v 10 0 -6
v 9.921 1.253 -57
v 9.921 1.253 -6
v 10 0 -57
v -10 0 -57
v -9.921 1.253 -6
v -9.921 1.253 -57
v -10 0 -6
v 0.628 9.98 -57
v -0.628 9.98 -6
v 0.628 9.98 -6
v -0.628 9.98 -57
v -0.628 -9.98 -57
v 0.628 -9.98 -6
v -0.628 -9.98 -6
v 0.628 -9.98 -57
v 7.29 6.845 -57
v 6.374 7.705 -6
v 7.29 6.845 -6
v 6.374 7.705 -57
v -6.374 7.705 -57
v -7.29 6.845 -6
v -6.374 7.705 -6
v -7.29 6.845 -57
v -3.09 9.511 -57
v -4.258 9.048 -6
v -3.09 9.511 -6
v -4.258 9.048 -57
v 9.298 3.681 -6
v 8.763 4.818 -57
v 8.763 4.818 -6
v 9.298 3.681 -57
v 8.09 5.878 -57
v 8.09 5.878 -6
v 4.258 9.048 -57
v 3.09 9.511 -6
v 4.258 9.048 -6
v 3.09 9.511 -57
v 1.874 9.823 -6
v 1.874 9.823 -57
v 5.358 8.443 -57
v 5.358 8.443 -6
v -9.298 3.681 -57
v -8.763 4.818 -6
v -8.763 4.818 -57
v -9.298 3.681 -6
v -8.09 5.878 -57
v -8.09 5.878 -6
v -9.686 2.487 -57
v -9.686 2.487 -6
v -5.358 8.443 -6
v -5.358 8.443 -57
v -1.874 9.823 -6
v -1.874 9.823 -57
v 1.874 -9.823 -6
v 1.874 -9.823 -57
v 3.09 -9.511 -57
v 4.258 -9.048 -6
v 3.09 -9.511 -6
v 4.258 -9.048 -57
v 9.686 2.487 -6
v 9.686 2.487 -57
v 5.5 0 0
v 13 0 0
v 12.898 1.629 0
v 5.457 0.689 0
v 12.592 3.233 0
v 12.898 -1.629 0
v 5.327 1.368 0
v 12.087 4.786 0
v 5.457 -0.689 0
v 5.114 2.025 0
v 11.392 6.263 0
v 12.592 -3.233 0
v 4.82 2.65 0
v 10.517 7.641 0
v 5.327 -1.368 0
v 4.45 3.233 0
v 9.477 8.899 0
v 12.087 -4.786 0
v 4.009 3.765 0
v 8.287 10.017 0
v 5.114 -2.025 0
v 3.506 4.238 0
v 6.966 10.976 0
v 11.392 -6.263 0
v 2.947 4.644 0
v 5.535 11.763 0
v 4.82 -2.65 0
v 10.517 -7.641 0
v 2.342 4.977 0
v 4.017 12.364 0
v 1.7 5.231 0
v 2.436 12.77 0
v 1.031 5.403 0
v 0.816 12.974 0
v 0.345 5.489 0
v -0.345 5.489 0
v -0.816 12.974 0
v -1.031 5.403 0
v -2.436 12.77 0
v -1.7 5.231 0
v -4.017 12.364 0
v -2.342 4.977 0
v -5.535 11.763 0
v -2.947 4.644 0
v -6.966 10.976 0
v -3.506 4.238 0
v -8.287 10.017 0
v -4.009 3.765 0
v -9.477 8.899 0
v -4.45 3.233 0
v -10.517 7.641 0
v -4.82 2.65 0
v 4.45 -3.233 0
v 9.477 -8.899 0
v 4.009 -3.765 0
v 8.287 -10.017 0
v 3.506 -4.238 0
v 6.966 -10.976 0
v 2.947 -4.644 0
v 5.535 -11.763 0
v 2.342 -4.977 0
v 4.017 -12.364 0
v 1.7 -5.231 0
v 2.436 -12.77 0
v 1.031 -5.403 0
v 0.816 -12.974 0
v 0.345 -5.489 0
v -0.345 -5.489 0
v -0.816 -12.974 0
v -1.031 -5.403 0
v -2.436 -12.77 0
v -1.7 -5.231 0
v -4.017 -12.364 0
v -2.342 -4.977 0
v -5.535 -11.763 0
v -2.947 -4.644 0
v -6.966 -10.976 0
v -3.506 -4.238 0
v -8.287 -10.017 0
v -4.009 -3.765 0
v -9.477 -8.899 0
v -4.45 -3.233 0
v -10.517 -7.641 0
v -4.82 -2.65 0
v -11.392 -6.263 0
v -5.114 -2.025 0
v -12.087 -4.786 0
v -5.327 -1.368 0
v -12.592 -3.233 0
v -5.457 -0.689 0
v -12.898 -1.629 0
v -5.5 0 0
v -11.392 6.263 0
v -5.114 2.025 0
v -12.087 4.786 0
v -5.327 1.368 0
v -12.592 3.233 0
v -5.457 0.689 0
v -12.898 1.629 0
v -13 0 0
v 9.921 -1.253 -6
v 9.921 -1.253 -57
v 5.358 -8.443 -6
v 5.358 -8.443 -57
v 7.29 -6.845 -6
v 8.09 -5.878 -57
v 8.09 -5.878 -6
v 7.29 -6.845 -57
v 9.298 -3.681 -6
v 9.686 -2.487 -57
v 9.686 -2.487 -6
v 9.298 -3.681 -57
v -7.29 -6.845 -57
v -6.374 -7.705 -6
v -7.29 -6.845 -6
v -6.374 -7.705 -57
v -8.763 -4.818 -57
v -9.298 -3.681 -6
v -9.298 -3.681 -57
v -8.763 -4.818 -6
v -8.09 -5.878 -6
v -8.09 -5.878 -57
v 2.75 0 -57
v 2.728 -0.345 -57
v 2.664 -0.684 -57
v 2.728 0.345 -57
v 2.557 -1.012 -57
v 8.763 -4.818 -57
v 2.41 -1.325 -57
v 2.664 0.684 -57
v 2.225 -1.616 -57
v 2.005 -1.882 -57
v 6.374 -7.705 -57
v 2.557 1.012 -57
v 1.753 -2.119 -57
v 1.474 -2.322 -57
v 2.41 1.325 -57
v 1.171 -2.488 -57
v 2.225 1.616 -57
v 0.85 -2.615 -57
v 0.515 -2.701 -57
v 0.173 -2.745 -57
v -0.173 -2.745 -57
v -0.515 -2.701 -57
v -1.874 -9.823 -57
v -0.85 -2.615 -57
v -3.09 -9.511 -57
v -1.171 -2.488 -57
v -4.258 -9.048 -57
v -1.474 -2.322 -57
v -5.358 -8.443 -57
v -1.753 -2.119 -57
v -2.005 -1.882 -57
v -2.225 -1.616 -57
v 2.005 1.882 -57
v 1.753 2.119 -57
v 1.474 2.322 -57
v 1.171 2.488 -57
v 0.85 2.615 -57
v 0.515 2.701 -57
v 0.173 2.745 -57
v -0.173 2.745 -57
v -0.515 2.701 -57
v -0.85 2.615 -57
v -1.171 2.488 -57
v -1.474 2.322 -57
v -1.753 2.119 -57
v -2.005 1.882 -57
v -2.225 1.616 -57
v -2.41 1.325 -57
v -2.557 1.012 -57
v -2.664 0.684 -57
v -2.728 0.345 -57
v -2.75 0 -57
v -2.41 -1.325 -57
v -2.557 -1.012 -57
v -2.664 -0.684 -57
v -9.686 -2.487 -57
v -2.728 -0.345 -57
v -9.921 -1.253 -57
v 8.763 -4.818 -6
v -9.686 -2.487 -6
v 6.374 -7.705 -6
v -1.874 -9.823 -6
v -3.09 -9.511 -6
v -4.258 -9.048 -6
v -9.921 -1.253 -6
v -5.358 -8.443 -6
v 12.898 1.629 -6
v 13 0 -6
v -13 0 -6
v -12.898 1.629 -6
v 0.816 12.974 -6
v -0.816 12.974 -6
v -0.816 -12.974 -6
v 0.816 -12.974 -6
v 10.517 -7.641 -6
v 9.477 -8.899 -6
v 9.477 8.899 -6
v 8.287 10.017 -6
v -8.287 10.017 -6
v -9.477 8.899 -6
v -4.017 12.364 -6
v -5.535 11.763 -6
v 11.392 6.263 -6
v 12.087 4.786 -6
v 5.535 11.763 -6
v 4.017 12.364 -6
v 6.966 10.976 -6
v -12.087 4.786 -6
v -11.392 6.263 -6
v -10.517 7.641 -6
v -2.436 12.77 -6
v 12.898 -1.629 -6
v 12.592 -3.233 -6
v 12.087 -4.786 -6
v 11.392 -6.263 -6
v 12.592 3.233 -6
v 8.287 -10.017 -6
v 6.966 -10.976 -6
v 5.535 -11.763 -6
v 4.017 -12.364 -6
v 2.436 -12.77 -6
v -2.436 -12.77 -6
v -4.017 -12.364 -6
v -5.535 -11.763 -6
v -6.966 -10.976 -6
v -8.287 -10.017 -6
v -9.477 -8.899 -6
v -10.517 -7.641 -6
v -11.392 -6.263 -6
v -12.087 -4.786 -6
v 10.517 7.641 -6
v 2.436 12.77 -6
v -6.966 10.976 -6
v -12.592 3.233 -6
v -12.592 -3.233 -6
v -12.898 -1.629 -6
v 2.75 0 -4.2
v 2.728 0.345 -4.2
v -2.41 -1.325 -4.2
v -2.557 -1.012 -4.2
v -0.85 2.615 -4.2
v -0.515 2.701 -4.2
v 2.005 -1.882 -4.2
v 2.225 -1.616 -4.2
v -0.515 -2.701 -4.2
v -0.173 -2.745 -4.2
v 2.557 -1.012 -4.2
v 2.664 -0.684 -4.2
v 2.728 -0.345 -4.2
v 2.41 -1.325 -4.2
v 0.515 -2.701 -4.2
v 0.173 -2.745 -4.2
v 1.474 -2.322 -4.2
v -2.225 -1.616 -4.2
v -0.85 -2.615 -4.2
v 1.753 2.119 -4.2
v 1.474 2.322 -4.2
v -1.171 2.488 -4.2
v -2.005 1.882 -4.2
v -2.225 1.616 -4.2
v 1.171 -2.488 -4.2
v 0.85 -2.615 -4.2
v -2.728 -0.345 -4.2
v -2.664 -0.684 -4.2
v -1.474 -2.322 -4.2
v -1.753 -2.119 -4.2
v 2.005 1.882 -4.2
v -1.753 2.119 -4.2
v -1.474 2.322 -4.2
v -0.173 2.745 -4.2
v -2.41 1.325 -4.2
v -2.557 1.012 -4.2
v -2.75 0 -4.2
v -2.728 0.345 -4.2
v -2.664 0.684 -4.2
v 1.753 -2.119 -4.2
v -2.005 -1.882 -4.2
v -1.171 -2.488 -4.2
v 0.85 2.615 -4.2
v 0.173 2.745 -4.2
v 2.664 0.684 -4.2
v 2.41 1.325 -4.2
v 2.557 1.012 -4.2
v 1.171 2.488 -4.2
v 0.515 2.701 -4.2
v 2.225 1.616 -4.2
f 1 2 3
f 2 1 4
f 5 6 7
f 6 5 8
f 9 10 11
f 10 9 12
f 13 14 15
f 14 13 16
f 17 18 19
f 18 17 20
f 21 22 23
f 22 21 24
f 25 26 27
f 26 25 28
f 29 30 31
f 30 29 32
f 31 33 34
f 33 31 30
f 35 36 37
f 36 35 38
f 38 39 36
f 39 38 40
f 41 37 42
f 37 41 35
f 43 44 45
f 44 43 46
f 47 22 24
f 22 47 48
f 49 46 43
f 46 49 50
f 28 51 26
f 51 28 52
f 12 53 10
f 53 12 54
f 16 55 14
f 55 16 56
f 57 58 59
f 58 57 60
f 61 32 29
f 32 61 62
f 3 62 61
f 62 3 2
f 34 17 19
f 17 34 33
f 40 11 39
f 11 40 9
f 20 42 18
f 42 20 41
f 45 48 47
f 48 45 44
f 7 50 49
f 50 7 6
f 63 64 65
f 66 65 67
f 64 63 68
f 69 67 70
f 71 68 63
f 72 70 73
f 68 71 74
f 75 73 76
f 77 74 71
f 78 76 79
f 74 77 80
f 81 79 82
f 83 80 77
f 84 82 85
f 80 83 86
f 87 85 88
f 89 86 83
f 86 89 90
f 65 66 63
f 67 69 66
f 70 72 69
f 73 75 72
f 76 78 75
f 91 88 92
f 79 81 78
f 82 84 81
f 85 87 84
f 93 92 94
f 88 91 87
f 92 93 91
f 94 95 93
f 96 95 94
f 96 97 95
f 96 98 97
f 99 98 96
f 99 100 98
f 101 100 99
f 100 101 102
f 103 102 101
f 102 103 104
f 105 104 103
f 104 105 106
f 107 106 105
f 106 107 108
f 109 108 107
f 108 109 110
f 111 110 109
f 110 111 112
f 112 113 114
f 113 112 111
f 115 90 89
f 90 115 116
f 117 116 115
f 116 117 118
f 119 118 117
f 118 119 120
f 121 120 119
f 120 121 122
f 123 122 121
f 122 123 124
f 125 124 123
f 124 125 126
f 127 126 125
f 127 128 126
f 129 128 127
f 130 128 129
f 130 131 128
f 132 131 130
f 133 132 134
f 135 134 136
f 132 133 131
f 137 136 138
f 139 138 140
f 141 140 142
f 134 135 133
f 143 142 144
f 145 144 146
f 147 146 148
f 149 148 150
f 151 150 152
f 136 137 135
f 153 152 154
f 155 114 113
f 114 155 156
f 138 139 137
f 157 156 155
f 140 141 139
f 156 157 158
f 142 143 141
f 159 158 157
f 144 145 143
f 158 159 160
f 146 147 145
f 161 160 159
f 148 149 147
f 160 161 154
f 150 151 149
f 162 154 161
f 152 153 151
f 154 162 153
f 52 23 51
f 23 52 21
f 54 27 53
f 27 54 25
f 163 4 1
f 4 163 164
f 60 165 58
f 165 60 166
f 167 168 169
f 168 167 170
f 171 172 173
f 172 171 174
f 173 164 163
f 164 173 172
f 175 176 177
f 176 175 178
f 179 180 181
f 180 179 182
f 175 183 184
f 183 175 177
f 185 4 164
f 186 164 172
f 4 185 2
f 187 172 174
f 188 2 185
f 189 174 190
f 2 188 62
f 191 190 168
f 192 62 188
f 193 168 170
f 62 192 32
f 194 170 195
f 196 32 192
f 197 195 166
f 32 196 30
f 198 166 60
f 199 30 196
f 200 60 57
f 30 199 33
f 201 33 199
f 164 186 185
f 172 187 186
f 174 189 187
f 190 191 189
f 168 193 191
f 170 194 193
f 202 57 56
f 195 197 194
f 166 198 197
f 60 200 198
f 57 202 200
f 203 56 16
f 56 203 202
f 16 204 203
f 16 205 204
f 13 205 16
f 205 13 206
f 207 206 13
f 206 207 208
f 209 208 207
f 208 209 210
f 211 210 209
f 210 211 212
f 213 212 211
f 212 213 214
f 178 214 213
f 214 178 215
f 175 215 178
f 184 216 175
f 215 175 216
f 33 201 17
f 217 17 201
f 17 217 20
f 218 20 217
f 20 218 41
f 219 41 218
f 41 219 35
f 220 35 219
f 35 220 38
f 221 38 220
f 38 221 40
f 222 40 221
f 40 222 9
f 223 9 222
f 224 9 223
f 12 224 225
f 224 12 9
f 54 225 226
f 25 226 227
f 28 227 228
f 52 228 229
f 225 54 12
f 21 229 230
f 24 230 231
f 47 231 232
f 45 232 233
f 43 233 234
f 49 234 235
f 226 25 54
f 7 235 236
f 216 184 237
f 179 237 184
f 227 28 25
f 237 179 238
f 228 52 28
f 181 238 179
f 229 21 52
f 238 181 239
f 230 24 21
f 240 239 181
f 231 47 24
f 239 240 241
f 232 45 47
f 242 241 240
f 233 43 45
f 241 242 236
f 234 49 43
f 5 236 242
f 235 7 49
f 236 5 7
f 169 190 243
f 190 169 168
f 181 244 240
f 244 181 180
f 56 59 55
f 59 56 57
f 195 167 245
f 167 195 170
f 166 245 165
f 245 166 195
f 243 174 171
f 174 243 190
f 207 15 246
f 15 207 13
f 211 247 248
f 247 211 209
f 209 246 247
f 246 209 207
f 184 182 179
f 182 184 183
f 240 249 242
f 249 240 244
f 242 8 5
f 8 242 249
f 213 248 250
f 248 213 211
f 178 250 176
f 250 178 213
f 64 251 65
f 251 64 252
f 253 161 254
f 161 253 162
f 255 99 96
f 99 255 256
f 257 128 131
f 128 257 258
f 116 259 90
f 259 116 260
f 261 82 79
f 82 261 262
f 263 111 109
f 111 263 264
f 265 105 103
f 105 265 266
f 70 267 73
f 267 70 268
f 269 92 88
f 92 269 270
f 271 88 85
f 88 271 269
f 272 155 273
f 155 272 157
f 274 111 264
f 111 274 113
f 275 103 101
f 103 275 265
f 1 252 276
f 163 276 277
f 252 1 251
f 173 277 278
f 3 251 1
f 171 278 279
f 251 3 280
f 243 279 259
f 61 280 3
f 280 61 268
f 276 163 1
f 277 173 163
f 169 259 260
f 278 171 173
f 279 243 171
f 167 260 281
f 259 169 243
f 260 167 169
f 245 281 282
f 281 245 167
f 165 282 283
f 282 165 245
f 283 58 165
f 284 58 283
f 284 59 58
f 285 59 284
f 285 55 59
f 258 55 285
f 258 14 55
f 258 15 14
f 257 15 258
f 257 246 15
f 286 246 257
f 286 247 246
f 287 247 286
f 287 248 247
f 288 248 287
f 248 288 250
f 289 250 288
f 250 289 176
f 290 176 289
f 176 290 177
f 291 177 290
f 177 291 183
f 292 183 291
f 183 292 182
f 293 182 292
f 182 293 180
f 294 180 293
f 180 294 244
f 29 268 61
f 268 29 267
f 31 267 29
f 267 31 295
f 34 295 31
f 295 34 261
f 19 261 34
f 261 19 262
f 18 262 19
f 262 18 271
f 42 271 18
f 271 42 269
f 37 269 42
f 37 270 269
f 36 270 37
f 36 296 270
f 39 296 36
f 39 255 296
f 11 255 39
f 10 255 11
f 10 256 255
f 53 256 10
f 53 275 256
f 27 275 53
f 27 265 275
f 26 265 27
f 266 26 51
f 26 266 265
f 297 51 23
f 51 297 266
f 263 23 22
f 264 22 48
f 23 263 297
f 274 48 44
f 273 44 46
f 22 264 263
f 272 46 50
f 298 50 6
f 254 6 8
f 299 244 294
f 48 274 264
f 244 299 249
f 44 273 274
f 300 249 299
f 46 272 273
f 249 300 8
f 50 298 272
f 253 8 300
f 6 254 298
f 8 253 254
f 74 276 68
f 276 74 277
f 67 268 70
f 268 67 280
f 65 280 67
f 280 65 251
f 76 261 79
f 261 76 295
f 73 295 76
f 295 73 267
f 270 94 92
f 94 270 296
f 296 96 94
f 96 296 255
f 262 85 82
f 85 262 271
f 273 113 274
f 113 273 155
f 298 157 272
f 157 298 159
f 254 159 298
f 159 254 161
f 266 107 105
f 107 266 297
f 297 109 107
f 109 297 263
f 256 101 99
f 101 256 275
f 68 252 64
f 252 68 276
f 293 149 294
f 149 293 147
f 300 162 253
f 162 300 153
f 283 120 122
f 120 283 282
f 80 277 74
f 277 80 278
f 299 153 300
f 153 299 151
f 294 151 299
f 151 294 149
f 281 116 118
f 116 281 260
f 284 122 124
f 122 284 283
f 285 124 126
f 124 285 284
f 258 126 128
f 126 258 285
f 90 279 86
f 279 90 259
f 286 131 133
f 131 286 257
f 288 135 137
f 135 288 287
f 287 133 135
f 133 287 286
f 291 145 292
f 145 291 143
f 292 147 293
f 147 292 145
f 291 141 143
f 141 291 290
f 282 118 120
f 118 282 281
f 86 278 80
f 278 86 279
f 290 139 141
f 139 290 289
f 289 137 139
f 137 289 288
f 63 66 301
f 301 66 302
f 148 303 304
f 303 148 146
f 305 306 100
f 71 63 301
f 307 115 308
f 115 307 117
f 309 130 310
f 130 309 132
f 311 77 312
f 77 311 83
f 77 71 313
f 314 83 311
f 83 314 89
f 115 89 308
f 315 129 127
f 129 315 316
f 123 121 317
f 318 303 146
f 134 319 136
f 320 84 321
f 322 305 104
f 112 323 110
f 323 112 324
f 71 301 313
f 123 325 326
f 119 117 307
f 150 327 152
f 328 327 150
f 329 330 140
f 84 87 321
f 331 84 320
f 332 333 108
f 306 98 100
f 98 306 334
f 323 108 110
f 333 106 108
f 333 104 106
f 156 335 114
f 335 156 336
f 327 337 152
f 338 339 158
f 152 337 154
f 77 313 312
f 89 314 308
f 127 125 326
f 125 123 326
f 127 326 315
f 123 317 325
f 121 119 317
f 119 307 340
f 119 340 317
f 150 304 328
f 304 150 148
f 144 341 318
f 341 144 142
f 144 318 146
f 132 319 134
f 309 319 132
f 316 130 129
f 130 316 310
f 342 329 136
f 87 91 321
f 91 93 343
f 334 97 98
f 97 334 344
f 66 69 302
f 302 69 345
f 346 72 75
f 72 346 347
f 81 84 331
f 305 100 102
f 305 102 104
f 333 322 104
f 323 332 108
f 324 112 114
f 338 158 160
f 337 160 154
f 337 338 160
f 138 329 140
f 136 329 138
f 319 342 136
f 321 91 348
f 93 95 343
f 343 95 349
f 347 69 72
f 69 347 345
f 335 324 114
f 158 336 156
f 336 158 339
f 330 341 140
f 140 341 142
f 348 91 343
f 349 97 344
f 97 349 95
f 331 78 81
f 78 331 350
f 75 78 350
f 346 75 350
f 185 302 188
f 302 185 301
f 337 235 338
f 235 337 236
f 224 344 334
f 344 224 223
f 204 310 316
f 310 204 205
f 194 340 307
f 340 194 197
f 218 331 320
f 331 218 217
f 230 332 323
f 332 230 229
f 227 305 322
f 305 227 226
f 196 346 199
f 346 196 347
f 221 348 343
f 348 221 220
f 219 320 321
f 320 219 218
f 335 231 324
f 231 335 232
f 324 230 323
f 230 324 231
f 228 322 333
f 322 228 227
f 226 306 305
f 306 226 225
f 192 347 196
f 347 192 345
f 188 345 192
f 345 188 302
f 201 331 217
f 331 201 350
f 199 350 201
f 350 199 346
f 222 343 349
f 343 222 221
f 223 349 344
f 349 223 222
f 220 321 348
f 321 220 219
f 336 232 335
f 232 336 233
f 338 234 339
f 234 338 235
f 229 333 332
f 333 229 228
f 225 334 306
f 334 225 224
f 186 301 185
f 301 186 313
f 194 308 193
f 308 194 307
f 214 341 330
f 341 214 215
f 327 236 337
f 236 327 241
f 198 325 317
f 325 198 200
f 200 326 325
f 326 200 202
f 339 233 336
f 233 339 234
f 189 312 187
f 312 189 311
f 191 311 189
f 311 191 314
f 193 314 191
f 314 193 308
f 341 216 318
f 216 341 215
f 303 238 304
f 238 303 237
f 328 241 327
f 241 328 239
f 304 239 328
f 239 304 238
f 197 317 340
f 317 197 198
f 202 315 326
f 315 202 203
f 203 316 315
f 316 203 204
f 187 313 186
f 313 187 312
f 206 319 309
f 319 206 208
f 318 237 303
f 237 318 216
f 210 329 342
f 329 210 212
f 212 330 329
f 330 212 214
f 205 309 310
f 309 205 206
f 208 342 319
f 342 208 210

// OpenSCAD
$fn = 50;


difference() {
	union() {
		translate(v = [0, 0, -57.0000000000]) {
			cylinder(h = 57, r = 10.0000000000);
		}
		translate(v = [0, 0, -6.0000000000]) {
			cylinder(h = 6, r = 13.0000000000);
		}
	}
	union() {
		translate(v = [0, 0, 0]) {
			rotate(a = [0, 0, 0]) {
				difference() {
					union() {
						#translate(v = [0, 0, -57.0000000000]) {
							cylinder(h = 57, r = 2.2500000000);
						}
						#translate(v = [0, 0, -4.2000000000]) {
							cylinder(h = 4.2000000000, r = 10.0000000000, r1 = 2.7500000000, r2 = 5.5000000000);
						}
						#translate(v = [0, 0, -57.0000000000]) {
							cylinder(h = 57, r = 2.7500000000);
						}
						#translate(v = [0, 0, -57.0000000000]) {
							cylinder(h = 57, r = 2.2500000000);
						}
					}
					union();
				}
			}
		}
	}
}
